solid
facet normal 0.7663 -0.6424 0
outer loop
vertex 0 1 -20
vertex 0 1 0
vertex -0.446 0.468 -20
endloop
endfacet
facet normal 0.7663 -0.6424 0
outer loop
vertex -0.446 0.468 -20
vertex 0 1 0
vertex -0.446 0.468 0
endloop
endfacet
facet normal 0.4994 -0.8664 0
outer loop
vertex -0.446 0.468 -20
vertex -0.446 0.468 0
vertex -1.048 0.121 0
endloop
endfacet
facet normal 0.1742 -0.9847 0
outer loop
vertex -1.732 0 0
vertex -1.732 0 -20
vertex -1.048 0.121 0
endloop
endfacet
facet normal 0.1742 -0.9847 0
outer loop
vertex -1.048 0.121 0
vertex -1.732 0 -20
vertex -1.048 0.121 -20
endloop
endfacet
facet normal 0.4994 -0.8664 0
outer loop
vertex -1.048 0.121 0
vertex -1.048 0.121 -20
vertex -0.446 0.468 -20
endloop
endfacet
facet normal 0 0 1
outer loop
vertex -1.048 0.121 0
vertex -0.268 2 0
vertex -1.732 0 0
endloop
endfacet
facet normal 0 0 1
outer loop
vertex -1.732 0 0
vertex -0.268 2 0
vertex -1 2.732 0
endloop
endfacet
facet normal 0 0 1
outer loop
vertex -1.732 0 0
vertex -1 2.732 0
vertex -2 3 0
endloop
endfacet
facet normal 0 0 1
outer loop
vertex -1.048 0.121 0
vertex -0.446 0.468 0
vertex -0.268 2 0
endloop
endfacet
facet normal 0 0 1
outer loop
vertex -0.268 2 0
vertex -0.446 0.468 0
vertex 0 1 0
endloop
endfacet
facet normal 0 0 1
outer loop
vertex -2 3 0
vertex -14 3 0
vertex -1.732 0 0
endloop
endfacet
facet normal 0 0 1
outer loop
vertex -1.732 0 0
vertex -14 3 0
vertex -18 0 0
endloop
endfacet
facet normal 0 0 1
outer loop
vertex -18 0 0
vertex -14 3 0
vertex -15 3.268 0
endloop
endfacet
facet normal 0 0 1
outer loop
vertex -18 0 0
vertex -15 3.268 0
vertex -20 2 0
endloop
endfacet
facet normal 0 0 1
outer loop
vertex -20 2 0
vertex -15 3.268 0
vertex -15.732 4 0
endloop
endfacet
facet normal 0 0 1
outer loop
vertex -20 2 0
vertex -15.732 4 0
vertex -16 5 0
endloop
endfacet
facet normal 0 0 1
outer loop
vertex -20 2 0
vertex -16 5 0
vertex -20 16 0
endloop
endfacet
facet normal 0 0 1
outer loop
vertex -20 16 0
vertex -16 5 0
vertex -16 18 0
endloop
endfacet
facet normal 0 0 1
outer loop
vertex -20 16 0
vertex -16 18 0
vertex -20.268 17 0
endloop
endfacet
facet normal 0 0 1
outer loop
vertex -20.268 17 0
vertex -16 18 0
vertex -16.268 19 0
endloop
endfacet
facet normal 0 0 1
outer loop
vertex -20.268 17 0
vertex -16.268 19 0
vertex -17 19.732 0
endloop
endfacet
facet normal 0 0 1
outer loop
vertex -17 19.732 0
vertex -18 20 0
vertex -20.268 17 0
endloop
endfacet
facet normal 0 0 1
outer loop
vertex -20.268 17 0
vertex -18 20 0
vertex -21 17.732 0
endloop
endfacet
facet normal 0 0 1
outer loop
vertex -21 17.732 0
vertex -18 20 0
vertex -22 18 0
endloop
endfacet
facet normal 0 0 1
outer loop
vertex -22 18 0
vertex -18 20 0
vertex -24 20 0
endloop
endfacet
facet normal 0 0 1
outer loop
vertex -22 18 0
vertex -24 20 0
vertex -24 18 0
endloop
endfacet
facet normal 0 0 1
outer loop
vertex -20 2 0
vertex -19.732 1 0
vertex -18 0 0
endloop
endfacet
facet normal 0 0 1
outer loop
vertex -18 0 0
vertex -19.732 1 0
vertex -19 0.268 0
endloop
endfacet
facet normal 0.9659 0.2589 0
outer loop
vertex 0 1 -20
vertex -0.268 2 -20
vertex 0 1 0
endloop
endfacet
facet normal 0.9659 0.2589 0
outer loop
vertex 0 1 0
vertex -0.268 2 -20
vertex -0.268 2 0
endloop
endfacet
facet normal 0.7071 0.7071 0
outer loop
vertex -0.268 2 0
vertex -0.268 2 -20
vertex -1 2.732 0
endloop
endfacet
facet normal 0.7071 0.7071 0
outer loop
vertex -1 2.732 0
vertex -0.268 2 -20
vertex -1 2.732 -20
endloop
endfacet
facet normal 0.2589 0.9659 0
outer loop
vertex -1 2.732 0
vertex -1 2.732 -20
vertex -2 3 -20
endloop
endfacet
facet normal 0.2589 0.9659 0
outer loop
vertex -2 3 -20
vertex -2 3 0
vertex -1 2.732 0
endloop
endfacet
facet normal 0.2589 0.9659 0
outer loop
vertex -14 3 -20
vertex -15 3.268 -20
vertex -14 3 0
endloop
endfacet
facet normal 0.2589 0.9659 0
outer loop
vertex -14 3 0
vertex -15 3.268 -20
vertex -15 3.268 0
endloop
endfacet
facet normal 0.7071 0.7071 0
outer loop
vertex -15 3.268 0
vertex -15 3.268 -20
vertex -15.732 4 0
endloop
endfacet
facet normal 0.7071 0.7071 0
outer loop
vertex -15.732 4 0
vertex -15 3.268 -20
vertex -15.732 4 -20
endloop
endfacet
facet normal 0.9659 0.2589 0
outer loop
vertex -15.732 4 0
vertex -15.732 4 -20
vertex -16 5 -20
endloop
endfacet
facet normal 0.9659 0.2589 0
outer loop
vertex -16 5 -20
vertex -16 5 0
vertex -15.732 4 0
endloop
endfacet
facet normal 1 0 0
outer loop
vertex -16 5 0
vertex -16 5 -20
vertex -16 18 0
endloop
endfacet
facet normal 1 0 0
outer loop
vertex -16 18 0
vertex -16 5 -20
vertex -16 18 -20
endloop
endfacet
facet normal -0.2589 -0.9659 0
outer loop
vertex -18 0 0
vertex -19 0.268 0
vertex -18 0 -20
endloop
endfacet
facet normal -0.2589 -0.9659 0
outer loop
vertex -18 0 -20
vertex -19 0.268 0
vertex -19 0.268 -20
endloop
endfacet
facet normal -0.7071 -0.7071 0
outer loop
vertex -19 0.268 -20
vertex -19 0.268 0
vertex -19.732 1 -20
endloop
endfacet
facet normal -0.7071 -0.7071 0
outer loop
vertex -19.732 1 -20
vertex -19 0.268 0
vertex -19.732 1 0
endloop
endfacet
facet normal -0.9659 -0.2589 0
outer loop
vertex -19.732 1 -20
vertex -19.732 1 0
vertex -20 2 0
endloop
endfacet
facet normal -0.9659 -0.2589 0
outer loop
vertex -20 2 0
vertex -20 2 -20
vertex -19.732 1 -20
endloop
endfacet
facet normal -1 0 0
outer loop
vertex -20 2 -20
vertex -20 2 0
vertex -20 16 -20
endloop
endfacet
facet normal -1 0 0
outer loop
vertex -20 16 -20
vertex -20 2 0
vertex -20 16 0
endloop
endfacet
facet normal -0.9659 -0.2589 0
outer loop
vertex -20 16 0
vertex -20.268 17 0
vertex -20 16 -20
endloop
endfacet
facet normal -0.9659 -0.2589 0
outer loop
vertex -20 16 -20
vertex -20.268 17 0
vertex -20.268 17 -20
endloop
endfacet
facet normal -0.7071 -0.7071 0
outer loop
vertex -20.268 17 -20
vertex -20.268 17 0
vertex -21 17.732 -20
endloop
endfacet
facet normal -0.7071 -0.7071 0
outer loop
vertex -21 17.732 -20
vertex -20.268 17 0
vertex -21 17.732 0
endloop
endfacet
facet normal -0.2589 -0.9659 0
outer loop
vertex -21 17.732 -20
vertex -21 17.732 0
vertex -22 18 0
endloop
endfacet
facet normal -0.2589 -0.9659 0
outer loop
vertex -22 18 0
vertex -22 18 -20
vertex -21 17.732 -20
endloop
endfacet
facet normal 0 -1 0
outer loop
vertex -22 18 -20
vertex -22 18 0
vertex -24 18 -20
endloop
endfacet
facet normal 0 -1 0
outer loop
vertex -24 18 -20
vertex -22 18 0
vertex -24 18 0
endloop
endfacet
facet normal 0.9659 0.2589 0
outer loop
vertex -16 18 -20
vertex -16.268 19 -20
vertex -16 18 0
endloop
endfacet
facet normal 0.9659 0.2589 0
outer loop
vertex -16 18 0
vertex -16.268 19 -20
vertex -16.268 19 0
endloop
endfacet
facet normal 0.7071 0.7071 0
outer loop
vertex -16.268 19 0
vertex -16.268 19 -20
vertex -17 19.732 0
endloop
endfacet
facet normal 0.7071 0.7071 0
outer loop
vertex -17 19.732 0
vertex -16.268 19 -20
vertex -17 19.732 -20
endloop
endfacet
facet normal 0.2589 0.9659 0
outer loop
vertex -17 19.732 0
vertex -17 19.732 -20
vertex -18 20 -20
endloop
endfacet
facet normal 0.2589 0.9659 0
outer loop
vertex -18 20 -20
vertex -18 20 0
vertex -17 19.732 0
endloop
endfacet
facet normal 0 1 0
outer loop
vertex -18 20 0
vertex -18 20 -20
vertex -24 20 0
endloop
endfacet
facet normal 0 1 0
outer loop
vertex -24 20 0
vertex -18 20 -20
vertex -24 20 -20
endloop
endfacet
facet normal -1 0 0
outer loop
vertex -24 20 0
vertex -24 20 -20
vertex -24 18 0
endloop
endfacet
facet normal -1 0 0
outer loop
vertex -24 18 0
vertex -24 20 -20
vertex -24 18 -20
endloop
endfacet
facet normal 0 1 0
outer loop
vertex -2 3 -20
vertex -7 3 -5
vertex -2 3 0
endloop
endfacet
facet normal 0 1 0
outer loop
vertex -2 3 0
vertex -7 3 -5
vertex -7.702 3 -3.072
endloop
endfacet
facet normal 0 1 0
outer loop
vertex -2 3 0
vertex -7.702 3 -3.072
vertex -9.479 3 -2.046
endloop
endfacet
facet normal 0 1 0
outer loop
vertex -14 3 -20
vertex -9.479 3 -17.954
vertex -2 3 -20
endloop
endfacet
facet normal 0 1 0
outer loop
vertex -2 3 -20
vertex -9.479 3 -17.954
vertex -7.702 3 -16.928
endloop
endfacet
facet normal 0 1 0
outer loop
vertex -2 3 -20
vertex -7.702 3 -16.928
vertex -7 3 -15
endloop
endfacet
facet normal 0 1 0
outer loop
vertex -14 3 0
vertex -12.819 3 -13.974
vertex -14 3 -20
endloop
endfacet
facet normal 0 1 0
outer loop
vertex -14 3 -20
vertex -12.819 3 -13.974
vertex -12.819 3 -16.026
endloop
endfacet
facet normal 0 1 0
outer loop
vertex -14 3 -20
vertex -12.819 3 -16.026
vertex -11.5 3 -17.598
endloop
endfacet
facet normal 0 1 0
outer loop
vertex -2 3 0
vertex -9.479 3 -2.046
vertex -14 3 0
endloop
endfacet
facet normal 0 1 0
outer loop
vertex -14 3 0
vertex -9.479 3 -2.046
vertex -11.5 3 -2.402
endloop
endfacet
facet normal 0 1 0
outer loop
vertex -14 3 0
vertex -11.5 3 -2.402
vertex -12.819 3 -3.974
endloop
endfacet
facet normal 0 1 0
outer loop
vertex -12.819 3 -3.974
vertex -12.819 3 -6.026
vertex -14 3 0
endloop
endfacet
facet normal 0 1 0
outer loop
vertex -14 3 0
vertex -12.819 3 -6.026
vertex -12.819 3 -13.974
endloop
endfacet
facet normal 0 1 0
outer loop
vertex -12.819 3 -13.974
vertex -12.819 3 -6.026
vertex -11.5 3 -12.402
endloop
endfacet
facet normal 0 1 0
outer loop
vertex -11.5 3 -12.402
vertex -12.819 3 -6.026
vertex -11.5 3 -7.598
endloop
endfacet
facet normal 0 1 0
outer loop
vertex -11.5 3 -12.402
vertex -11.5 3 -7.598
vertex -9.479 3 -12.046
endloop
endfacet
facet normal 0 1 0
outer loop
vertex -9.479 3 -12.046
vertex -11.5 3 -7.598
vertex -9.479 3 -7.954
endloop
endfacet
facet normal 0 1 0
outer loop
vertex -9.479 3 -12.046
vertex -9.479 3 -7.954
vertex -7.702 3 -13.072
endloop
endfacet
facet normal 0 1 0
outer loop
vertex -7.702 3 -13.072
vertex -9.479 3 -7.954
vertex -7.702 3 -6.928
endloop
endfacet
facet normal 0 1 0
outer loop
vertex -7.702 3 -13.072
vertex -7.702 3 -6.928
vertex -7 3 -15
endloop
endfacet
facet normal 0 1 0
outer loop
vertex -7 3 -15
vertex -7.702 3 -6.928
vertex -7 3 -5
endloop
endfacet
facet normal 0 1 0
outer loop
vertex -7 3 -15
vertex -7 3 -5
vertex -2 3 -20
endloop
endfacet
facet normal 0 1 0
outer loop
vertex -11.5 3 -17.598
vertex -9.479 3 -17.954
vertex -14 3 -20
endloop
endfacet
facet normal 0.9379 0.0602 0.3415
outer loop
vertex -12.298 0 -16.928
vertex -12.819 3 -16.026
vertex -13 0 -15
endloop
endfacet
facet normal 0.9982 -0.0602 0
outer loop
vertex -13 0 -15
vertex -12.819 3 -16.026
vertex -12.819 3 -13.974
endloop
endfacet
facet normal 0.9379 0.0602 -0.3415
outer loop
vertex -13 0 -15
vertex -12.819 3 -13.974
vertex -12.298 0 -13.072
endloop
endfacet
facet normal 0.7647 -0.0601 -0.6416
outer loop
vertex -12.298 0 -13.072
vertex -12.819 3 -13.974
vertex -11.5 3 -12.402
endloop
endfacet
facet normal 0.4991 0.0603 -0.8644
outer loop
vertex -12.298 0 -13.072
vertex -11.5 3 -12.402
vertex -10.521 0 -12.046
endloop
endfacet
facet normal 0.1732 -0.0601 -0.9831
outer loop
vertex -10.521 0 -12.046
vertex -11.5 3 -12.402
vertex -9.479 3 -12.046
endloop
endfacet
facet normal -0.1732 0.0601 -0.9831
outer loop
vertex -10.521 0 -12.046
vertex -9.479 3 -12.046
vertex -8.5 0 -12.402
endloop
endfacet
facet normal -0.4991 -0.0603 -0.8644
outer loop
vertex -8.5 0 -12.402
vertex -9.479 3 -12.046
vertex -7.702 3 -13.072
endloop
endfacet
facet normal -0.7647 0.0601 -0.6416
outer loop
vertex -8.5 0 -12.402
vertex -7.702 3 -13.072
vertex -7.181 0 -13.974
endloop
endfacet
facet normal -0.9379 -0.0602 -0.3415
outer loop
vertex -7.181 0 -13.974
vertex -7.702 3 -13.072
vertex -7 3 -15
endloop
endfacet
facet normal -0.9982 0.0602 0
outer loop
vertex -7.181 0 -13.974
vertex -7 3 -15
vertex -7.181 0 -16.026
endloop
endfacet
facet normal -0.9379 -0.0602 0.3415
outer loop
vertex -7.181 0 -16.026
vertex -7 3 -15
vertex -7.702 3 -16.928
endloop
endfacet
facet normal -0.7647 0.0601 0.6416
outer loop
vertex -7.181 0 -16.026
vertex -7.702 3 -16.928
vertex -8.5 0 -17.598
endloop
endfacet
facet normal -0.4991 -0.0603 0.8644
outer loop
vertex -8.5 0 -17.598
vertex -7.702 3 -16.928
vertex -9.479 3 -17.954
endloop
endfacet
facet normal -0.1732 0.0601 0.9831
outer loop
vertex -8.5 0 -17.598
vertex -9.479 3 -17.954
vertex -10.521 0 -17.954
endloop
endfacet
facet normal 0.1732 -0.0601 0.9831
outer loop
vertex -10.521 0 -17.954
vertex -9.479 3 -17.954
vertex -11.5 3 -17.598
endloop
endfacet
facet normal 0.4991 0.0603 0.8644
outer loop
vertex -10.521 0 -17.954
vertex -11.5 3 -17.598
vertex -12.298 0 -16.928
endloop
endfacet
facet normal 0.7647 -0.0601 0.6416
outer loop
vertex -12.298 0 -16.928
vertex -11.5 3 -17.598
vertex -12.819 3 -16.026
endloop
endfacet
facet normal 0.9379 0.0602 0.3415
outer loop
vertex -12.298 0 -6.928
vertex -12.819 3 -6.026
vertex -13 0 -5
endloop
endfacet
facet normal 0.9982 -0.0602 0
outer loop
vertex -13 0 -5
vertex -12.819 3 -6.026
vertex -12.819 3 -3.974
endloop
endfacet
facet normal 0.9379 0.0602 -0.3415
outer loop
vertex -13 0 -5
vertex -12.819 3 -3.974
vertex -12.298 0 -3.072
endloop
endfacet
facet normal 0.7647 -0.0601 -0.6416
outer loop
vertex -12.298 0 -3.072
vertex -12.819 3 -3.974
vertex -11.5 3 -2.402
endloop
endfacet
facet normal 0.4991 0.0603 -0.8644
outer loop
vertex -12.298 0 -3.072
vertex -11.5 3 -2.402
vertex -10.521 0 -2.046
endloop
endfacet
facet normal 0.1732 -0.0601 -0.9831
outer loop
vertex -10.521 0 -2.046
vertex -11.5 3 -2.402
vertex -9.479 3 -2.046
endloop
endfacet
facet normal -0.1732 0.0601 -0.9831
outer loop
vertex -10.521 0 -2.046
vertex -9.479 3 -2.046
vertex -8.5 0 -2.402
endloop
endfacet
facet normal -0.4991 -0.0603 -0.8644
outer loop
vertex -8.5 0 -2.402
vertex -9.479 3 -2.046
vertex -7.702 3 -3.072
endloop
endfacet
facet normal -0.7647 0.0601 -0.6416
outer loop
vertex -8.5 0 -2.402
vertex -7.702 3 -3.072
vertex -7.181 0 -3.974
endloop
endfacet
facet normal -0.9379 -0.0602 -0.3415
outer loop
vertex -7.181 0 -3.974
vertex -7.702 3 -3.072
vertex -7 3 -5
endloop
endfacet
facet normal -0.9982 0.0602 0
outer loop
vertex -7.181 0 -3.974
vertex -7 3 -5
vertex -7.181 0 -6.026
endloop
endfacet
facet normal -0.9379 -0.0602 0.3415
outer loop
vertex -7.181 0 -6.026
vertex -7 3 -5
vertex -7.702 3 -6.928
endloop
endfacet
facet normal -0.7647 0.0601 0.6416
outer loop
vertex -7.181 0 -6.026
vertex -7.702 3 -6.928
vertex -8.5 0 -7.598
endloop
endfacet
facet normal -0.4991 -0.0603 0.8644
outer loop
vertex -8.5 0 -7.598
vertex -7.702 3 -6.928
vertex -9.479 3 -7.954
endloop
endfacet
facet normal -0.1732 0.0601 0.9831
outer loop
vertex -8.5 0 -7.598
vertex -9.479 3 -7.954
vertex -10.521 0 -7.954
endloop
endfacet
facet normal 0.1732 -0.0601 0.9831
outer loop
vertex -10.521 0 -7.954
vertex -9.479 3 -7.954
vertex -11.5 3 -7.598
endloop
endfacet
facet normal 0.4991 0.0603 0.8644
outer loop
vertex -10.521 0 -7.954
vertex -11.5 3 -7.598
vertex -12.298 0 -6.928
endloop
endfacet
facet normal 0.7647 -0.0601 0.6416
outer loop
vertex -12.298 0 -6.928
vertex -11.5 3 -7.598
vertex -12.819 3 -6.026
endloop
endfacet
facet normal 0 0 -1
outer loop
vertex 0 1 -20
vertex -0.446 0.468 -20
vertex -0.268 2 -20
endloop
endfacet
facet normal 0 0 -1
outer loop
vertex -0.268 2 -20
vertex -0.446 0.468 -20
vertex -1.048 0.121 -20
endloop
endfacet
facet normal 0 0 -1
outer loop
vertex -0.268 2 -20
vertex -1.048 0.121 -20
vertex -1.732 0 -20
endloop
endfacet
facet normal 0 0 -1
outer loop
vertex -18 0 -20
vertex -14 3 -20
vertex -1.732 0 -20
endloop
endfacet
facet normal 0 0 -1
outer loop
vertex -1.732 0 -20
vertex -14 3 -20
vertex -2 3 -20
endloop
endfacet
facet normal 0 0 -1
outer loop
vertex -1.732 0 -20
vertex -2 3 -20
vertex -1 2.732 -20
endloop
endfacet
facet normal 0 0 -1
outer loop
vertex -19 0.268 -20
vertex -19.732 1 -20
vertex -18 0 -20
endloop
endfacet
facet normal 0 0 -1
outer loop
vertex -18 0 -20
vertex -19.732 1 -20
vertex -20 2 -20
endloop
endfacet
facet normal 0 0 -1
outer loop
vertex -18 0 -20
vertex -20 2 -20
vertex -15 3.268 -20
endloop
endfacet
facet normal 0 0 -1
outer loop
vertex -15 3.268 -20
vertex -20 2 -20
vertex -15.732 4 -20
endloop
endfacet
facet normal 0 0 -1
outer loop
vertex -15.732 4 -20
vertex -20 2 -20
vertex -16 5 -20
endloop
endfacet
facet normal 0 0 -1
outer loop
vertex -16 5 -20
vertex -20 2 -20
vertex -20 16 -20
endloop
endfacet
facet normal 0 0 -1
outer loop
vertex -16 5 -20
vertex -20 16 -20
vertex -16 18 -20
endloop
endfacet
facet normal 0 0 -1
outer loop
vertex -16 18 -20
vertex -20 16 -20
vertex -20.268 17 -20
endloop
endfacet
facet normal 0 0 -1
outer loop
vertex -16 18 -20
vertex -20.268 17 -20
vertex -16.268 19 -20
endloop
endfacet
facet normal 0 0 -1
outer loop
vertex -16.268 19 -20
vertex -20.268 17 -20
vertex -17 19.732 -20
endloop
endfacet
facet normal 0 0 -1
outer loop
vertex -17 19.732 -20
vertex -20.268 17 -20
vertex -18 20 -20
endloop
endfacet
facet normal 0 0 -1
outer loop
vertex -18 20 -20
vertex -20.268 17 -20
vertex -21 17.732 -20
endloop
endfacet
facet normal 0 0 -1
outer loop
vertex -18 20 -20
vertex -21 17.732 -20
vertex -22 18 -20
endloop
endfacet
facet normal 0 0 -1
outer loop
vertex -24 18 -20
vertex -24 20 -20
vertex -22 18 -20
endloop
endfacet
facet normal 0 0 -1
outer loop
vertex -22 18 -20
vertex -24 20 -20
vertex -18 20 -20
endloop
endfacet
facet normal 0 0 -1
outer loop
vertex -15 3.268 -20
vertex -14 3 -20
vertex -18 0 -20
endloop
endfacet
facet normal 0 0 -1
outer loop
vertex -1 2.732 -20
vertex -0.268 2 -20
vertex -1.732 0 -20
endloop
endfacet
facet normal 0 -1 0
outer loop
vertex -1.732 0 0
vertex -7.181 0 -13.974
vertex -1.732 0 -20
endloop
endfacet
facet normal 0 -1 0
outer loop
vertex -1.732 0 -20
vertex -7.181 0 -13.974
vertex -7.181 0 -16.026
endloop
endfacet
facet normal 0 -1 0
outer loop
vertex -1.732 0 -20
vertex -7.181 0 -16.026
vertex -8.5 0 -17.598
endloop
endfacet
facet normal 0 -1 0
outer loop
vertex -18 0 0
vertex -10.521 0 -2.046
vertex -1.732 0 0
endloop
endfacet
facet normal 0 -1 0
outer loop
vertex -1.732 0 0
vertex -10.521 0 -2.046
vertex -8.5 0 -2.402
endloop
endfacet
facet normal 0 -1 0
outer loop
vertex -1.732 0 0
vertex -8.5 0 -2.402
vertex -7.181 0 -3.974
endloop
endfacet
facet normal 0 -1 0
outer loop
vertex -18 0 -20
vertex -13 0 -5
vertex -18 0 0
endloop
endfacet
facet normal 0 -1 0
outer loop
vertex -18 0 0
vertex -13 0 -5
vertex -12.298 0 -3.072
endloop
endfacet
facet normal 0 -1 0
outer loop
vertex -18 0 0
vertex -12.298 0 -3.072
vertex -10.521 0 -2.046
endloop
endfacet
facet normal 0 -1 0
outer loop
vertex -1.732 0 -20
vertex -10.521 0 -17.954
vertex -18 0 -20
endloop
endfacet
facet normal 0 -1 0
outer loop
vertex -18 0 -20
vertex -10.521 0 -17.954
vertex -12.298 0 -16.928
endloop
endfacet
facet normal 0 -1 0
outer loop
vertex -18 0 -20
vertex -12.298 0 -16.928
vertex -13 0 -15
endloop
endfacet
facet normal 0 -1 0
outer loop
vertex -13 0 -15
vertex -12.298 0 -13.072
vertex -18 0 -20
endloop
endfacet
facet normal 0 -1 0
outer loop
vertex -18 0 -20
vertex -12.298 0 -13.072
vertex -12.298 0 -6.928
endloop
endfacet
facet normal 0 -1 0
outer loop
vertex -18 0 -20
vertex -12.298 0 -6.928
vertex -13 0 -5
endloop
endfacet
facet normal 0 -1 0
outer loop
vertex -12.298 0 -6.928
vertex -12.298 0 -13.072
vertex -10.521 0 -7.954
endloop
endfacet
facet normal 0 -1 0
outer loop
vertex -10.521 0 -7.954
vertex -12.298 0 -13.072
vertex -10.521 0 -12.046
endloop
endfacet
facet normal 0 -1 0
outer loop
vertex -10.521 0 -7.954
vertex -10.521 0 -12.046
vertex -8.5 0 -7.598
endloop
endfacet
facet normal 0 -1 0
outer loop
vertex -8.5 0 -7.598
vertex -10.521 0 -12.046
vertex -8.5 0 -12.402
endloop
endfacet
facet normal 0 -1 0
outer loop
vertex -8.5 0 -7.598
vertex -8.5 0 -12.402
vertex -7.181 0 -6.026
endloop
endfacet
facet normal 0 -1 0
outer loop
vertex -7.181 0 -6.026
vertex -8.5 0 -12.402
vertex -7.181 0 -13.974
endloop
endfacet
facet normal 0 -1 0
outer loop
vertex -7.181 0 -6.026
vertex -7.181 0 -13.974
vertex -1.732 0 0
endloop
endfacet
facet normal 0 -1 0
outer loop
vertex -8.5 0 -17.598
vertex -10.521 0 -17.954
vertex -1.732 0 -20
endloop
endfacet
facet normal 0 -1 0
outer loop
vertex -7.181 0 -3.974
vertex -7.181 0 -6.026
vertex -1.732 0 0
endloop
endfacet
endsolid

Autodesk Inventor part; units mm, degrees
ref_plane "YZ Plane" through (0, 0, 0) normal (1, 0, 0) x (0, 1, 0)
ref_plane "XZ Plane" through (0, 0, 0) normal (0, 1, 0) x (-1, 0, 0)
ref_plane "XY Plane" through (0, 0, 0) normal (0, 0, 1) x (1, 0, 0)
sketch "Sketch1" plane through (0, 0, 0) normal (0, 1, 0) x (-1, 0, 0)
  line L0 (0, 0) -> (20, 0)
  line L1 (20, 0) -> (20, -20)
  line L2 (20, -20) -> (0, -20)
  line L3 (0, -20) -> (0, 0)
  dimension "d0" = 20
  dimension "d1" = 20
extrude "Extrusion1" add sketch "Sketch1" along normal blind 3
sketch "Sketch2" plane through (0, 3, 0) normal (0, 1, 0) x (1, 0, 0)
  circle A0 centre (-10, 15) radius 3
  line L0 (0, 0) -> (0, 20) projected
  line L1 (0, 20) -> (-20, 20) projected
  circle A1 centre (-10, 5) radius 3
  dimension "d4" = 6
  dimension "d5" = 10
  dimension "d6" = 5
  dimension "d23" = 6
  dimension "d24" = 10
  dimension "d25" = 10
extrude "Extrusion2" cut sketch "Sketch2" against normal through all
sketch "Sketch3" plane through (0, 3, 0) normal (0, 1, 0) x (1, 0, 0)
  circle A0 centre (-10, 15) radius 3 projected
  circle A1 centre (-10, 15) radius 5
  line L0 (-10, 15) -> (-18, 15)
  line L1 (0, 20) -> (-20, 20) projected
  line L2 (-20, 0) -> (-16, 0)
  line L3 (-16, 0) -> (-16, 20)
  line L4 (-16, 20) -> (-20, 20)
  line L5 (-20, 20) -> (-20, 0)
  line L6 (0, 0) -> (0, 20) projected
  dimension "d9" = 10
  dimension "d10" = 8
  dimension "d11" = 4
  dimension "d26" = 20
  dimension "d27" = 20
extrude "Extrusion3" add sketch "Sketch3" along normal blind 17 contours L3 L2 L5 L1
sketch "Sketch4" plane through (-20, 0, -20) normal (-1, 0, 0) x (0, 0, 1)
  line L0 (0, 0) -> (0, 20) projected
  line L1 (0, 20) -> (20, 20)
  line L2 (20, 20) -> (20, 18)
  line L3 (20, 18) -> (0, 18)
  line L4 (0, 18) -> (0, 20)
  point P0 (20, 0)
  dimension "d14" = 20
  dimension "d15" = 2
extrude "Extrusion4" add sketch "Sketch4" along normal blind 4
fillet "Fillet1" radius 2 1 edges at (-16, 20, -10)
fillet "Fillet2" radius 2 1 edges at (-20, 18, -10)
fillet "Fillet3" radius 2 1 edges at (-20, 0, -10)
fillet "Fillet4" radius 2 1 edges at (-16, 3, -10)
fillet "Fillet5" radius 2 2 edges at (0, 3, -10) (0, 0, -10)
properties part number "CableGuide"
